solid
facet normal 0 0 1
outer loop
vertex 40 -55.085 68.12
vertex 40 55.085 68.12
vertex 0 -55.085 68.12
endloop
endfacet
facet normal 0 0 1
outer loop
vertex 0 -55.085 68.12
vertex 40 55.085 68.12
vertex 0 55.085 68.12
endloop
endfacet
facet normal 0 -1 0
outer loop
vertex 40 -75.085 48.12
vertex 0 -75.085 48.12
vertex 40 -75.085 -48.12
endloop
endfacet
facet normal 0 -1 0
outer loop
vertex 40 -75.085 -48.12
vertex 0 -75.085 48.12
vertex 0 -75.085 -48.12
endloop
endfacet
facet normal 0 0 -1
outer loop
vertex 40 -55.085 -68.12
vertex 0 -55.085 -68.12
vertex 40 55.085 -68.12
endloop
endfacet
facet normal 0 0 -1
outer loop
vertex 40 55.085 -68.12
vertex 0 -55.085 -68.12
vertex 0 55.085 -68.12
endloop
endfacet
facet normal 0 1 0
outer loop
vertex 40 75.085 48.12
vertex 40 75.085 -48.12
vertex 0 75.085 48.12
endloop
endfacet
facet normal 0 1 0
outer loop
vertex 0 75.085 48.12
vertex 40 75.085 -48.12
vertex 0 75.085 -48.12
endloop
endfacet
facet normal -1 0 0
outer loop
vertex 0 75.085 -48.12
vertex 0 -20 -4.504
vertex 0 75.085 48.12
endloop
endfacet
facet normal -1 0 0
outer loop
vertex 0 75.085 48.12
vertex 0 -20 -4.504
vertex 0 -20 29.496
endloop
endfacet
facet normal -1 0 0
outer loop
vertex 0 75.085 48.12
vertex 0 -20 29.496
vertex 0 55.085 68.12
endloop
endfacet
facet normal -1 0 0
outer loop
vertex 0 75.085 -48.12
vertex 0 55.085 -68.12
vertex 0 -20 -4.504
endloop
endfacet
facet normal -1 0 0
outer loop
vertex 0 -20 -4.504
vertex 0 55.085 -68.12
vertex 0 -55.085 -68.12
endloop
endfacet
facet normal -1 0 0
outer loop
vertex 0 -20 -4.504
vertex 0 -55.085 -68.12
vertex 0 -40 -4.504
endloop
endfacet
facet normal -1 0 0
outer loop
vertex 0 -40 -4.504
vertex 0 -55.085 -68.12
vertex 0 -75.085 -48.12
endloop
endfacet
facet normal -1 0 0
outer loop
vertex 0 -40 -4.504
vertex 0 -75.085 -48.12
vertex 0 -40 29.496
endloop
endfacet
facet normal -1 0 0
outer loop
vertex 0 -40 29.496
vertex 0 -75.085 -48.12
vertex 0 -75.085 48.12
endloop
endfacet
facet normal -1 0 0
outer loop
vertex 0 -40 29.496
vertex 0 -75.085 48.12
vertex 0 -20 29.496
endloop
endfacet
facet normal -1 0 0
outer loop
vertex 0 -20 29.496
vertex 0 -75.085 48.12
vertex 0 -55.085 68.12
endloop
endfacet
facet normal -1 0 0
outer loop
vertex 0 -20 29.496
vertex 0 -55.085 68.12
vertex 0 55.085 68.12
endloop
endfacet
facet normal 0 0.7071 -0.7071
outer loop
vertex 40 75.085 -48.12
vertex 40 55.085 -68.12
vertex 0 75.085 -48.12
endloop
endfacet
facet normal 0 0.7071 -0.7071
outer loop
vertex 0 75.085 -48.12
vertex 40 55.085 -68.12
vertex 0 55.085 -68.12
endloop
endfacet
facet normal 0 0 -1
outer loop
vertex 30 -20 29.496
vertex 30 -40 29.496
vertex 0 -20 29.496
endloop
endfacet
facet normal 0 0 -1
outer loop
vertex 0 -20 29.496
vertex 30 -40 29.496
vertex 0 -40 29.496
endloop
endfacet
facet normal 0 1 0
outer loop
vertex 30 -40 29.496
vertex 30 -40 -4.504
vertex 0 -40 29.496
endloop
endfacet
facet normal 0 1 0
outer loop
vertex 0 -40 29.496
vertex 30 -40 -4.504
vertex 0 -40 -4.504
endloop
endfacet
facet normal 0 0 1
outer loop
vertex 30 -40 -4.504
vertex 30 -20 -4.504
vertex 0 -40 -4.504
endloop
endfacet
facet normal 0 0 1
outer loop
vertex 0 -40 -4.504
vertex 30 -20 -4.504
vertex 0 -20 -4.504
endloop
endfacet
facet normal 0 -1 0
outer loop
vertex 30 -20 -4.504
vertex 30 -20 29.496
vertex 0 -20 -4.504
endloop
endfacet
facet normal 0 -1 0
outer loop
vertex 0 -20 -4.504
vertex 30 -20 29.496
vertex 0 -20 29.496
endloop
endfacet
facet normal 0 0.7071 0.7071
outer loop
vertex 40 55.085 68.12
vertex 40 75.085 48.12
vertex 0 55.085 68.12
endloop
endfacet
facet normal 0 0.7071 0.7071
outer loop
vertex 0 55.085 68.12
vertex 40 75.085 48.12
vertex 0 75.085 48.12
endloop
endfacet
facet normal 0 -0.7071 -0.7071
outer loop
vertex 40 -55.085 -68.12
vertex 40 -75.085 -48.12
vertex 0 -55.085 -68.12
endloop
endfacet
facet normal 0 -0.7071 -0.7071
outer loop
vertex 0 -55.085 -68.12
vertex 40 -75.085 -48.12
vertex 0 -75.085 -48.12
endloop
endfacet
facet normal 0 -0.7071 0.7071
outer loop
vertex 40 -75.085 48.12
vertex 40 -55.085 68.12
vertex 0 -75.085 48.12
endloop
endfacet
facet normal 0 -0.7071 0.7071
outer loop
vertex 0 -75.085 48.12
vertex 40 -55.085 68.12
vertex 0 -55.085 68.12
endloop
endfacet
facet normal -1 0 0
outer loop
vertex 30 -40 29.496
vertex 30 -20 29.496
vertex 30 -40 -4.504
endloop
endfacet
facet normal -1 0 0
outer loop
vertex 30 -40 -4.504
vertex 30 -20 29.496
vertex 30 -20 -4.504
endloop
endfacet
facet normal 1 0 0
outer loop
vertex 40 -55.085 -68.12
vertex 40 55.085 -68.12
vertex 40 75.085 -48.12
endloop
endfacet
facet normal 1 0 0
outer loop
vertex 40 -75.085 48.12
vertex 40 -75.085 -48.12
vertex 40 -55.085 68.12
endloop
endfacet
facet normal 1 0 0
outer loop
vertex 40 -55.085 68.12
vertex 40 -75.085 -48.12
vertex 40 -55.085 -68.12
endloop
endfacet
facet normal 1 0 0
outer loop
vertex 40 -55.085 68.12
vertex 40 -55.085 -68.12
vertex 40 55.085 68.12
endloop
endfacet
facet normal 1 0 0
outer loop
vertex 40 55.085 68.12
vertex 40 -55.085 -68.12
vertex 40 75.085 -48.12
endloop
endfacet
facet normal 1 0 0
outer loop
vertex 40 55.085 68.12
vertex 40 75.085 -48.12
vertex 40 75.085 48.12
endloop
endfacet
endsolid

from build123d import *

# Parameters (mm, degrees)
SKETCH3_W           = 136.24
SKETCH3_H           = 150.17
BOSS_EXTRUDE1_DEPTH = 30
CUT_EXTRUDE1_DEPTH  = 30
BOSS_EXTRUDE2_DEPTH = 10


with BuildPart() as part:
    # Sketch3 → Boss-Extrude1 (new body)
    with BuildSketch(Plane(origin=(0, 0, 0), x_dir=(0, 0, -1), z_dir=(1, 0, 0))):
        Rectangle(SKETCH3_W, SKETCH3_H)
    extrude(amount=BOSS_EXTRUDE1_DEPTH)

    # Sketch4 → Cut-Extrude1 (cut)
    with BuildSketch(Plane.ZY):
        Polygon((-68.12, 75.085), (-48.12, 75.085), (-68.12, 55.085), align=None)
        Polygon((68.12, 75.085), (68.12, 55.085), (48.12, 75.085), align=None)
        Polygon((-68.12, -75.085), (-68.12, -55.085), (-48.12, -75.085), align=None)
        Polygon((68.12, -75.085), (68.12, -55.085), (48.12, -75.085), align=None)
        Polygon((25.49577004, -20), (29.49577004, -20), (29.49577004, -40), (25.49577004, -40), (-4.50422996, -40), (-4.50422996, -20), align=None)
    extrude(amount=-CUT_EXTRUDE1_DEPTH, mode=Mode.SUBTRACT)

    # Sketch6 → Boss-Extrude2 (add)
    with BuildSketch(Plane(origin=(30, 0, 0), x_dir=(0, 0, -1), z_dir=(1, 0, 0))):
        Polygon((-68.12, 55.085), (-48.12, 75.085), (48.12, 75.085), (68.12, 55.085), (68.12, -55.085), (48.12, -75.085), (-48.12, -75.085), (-68.12, -55.085), align=None)
    extrude(amount=BOSS_EXTRUDE2_DEPTH)


solid = part.part
